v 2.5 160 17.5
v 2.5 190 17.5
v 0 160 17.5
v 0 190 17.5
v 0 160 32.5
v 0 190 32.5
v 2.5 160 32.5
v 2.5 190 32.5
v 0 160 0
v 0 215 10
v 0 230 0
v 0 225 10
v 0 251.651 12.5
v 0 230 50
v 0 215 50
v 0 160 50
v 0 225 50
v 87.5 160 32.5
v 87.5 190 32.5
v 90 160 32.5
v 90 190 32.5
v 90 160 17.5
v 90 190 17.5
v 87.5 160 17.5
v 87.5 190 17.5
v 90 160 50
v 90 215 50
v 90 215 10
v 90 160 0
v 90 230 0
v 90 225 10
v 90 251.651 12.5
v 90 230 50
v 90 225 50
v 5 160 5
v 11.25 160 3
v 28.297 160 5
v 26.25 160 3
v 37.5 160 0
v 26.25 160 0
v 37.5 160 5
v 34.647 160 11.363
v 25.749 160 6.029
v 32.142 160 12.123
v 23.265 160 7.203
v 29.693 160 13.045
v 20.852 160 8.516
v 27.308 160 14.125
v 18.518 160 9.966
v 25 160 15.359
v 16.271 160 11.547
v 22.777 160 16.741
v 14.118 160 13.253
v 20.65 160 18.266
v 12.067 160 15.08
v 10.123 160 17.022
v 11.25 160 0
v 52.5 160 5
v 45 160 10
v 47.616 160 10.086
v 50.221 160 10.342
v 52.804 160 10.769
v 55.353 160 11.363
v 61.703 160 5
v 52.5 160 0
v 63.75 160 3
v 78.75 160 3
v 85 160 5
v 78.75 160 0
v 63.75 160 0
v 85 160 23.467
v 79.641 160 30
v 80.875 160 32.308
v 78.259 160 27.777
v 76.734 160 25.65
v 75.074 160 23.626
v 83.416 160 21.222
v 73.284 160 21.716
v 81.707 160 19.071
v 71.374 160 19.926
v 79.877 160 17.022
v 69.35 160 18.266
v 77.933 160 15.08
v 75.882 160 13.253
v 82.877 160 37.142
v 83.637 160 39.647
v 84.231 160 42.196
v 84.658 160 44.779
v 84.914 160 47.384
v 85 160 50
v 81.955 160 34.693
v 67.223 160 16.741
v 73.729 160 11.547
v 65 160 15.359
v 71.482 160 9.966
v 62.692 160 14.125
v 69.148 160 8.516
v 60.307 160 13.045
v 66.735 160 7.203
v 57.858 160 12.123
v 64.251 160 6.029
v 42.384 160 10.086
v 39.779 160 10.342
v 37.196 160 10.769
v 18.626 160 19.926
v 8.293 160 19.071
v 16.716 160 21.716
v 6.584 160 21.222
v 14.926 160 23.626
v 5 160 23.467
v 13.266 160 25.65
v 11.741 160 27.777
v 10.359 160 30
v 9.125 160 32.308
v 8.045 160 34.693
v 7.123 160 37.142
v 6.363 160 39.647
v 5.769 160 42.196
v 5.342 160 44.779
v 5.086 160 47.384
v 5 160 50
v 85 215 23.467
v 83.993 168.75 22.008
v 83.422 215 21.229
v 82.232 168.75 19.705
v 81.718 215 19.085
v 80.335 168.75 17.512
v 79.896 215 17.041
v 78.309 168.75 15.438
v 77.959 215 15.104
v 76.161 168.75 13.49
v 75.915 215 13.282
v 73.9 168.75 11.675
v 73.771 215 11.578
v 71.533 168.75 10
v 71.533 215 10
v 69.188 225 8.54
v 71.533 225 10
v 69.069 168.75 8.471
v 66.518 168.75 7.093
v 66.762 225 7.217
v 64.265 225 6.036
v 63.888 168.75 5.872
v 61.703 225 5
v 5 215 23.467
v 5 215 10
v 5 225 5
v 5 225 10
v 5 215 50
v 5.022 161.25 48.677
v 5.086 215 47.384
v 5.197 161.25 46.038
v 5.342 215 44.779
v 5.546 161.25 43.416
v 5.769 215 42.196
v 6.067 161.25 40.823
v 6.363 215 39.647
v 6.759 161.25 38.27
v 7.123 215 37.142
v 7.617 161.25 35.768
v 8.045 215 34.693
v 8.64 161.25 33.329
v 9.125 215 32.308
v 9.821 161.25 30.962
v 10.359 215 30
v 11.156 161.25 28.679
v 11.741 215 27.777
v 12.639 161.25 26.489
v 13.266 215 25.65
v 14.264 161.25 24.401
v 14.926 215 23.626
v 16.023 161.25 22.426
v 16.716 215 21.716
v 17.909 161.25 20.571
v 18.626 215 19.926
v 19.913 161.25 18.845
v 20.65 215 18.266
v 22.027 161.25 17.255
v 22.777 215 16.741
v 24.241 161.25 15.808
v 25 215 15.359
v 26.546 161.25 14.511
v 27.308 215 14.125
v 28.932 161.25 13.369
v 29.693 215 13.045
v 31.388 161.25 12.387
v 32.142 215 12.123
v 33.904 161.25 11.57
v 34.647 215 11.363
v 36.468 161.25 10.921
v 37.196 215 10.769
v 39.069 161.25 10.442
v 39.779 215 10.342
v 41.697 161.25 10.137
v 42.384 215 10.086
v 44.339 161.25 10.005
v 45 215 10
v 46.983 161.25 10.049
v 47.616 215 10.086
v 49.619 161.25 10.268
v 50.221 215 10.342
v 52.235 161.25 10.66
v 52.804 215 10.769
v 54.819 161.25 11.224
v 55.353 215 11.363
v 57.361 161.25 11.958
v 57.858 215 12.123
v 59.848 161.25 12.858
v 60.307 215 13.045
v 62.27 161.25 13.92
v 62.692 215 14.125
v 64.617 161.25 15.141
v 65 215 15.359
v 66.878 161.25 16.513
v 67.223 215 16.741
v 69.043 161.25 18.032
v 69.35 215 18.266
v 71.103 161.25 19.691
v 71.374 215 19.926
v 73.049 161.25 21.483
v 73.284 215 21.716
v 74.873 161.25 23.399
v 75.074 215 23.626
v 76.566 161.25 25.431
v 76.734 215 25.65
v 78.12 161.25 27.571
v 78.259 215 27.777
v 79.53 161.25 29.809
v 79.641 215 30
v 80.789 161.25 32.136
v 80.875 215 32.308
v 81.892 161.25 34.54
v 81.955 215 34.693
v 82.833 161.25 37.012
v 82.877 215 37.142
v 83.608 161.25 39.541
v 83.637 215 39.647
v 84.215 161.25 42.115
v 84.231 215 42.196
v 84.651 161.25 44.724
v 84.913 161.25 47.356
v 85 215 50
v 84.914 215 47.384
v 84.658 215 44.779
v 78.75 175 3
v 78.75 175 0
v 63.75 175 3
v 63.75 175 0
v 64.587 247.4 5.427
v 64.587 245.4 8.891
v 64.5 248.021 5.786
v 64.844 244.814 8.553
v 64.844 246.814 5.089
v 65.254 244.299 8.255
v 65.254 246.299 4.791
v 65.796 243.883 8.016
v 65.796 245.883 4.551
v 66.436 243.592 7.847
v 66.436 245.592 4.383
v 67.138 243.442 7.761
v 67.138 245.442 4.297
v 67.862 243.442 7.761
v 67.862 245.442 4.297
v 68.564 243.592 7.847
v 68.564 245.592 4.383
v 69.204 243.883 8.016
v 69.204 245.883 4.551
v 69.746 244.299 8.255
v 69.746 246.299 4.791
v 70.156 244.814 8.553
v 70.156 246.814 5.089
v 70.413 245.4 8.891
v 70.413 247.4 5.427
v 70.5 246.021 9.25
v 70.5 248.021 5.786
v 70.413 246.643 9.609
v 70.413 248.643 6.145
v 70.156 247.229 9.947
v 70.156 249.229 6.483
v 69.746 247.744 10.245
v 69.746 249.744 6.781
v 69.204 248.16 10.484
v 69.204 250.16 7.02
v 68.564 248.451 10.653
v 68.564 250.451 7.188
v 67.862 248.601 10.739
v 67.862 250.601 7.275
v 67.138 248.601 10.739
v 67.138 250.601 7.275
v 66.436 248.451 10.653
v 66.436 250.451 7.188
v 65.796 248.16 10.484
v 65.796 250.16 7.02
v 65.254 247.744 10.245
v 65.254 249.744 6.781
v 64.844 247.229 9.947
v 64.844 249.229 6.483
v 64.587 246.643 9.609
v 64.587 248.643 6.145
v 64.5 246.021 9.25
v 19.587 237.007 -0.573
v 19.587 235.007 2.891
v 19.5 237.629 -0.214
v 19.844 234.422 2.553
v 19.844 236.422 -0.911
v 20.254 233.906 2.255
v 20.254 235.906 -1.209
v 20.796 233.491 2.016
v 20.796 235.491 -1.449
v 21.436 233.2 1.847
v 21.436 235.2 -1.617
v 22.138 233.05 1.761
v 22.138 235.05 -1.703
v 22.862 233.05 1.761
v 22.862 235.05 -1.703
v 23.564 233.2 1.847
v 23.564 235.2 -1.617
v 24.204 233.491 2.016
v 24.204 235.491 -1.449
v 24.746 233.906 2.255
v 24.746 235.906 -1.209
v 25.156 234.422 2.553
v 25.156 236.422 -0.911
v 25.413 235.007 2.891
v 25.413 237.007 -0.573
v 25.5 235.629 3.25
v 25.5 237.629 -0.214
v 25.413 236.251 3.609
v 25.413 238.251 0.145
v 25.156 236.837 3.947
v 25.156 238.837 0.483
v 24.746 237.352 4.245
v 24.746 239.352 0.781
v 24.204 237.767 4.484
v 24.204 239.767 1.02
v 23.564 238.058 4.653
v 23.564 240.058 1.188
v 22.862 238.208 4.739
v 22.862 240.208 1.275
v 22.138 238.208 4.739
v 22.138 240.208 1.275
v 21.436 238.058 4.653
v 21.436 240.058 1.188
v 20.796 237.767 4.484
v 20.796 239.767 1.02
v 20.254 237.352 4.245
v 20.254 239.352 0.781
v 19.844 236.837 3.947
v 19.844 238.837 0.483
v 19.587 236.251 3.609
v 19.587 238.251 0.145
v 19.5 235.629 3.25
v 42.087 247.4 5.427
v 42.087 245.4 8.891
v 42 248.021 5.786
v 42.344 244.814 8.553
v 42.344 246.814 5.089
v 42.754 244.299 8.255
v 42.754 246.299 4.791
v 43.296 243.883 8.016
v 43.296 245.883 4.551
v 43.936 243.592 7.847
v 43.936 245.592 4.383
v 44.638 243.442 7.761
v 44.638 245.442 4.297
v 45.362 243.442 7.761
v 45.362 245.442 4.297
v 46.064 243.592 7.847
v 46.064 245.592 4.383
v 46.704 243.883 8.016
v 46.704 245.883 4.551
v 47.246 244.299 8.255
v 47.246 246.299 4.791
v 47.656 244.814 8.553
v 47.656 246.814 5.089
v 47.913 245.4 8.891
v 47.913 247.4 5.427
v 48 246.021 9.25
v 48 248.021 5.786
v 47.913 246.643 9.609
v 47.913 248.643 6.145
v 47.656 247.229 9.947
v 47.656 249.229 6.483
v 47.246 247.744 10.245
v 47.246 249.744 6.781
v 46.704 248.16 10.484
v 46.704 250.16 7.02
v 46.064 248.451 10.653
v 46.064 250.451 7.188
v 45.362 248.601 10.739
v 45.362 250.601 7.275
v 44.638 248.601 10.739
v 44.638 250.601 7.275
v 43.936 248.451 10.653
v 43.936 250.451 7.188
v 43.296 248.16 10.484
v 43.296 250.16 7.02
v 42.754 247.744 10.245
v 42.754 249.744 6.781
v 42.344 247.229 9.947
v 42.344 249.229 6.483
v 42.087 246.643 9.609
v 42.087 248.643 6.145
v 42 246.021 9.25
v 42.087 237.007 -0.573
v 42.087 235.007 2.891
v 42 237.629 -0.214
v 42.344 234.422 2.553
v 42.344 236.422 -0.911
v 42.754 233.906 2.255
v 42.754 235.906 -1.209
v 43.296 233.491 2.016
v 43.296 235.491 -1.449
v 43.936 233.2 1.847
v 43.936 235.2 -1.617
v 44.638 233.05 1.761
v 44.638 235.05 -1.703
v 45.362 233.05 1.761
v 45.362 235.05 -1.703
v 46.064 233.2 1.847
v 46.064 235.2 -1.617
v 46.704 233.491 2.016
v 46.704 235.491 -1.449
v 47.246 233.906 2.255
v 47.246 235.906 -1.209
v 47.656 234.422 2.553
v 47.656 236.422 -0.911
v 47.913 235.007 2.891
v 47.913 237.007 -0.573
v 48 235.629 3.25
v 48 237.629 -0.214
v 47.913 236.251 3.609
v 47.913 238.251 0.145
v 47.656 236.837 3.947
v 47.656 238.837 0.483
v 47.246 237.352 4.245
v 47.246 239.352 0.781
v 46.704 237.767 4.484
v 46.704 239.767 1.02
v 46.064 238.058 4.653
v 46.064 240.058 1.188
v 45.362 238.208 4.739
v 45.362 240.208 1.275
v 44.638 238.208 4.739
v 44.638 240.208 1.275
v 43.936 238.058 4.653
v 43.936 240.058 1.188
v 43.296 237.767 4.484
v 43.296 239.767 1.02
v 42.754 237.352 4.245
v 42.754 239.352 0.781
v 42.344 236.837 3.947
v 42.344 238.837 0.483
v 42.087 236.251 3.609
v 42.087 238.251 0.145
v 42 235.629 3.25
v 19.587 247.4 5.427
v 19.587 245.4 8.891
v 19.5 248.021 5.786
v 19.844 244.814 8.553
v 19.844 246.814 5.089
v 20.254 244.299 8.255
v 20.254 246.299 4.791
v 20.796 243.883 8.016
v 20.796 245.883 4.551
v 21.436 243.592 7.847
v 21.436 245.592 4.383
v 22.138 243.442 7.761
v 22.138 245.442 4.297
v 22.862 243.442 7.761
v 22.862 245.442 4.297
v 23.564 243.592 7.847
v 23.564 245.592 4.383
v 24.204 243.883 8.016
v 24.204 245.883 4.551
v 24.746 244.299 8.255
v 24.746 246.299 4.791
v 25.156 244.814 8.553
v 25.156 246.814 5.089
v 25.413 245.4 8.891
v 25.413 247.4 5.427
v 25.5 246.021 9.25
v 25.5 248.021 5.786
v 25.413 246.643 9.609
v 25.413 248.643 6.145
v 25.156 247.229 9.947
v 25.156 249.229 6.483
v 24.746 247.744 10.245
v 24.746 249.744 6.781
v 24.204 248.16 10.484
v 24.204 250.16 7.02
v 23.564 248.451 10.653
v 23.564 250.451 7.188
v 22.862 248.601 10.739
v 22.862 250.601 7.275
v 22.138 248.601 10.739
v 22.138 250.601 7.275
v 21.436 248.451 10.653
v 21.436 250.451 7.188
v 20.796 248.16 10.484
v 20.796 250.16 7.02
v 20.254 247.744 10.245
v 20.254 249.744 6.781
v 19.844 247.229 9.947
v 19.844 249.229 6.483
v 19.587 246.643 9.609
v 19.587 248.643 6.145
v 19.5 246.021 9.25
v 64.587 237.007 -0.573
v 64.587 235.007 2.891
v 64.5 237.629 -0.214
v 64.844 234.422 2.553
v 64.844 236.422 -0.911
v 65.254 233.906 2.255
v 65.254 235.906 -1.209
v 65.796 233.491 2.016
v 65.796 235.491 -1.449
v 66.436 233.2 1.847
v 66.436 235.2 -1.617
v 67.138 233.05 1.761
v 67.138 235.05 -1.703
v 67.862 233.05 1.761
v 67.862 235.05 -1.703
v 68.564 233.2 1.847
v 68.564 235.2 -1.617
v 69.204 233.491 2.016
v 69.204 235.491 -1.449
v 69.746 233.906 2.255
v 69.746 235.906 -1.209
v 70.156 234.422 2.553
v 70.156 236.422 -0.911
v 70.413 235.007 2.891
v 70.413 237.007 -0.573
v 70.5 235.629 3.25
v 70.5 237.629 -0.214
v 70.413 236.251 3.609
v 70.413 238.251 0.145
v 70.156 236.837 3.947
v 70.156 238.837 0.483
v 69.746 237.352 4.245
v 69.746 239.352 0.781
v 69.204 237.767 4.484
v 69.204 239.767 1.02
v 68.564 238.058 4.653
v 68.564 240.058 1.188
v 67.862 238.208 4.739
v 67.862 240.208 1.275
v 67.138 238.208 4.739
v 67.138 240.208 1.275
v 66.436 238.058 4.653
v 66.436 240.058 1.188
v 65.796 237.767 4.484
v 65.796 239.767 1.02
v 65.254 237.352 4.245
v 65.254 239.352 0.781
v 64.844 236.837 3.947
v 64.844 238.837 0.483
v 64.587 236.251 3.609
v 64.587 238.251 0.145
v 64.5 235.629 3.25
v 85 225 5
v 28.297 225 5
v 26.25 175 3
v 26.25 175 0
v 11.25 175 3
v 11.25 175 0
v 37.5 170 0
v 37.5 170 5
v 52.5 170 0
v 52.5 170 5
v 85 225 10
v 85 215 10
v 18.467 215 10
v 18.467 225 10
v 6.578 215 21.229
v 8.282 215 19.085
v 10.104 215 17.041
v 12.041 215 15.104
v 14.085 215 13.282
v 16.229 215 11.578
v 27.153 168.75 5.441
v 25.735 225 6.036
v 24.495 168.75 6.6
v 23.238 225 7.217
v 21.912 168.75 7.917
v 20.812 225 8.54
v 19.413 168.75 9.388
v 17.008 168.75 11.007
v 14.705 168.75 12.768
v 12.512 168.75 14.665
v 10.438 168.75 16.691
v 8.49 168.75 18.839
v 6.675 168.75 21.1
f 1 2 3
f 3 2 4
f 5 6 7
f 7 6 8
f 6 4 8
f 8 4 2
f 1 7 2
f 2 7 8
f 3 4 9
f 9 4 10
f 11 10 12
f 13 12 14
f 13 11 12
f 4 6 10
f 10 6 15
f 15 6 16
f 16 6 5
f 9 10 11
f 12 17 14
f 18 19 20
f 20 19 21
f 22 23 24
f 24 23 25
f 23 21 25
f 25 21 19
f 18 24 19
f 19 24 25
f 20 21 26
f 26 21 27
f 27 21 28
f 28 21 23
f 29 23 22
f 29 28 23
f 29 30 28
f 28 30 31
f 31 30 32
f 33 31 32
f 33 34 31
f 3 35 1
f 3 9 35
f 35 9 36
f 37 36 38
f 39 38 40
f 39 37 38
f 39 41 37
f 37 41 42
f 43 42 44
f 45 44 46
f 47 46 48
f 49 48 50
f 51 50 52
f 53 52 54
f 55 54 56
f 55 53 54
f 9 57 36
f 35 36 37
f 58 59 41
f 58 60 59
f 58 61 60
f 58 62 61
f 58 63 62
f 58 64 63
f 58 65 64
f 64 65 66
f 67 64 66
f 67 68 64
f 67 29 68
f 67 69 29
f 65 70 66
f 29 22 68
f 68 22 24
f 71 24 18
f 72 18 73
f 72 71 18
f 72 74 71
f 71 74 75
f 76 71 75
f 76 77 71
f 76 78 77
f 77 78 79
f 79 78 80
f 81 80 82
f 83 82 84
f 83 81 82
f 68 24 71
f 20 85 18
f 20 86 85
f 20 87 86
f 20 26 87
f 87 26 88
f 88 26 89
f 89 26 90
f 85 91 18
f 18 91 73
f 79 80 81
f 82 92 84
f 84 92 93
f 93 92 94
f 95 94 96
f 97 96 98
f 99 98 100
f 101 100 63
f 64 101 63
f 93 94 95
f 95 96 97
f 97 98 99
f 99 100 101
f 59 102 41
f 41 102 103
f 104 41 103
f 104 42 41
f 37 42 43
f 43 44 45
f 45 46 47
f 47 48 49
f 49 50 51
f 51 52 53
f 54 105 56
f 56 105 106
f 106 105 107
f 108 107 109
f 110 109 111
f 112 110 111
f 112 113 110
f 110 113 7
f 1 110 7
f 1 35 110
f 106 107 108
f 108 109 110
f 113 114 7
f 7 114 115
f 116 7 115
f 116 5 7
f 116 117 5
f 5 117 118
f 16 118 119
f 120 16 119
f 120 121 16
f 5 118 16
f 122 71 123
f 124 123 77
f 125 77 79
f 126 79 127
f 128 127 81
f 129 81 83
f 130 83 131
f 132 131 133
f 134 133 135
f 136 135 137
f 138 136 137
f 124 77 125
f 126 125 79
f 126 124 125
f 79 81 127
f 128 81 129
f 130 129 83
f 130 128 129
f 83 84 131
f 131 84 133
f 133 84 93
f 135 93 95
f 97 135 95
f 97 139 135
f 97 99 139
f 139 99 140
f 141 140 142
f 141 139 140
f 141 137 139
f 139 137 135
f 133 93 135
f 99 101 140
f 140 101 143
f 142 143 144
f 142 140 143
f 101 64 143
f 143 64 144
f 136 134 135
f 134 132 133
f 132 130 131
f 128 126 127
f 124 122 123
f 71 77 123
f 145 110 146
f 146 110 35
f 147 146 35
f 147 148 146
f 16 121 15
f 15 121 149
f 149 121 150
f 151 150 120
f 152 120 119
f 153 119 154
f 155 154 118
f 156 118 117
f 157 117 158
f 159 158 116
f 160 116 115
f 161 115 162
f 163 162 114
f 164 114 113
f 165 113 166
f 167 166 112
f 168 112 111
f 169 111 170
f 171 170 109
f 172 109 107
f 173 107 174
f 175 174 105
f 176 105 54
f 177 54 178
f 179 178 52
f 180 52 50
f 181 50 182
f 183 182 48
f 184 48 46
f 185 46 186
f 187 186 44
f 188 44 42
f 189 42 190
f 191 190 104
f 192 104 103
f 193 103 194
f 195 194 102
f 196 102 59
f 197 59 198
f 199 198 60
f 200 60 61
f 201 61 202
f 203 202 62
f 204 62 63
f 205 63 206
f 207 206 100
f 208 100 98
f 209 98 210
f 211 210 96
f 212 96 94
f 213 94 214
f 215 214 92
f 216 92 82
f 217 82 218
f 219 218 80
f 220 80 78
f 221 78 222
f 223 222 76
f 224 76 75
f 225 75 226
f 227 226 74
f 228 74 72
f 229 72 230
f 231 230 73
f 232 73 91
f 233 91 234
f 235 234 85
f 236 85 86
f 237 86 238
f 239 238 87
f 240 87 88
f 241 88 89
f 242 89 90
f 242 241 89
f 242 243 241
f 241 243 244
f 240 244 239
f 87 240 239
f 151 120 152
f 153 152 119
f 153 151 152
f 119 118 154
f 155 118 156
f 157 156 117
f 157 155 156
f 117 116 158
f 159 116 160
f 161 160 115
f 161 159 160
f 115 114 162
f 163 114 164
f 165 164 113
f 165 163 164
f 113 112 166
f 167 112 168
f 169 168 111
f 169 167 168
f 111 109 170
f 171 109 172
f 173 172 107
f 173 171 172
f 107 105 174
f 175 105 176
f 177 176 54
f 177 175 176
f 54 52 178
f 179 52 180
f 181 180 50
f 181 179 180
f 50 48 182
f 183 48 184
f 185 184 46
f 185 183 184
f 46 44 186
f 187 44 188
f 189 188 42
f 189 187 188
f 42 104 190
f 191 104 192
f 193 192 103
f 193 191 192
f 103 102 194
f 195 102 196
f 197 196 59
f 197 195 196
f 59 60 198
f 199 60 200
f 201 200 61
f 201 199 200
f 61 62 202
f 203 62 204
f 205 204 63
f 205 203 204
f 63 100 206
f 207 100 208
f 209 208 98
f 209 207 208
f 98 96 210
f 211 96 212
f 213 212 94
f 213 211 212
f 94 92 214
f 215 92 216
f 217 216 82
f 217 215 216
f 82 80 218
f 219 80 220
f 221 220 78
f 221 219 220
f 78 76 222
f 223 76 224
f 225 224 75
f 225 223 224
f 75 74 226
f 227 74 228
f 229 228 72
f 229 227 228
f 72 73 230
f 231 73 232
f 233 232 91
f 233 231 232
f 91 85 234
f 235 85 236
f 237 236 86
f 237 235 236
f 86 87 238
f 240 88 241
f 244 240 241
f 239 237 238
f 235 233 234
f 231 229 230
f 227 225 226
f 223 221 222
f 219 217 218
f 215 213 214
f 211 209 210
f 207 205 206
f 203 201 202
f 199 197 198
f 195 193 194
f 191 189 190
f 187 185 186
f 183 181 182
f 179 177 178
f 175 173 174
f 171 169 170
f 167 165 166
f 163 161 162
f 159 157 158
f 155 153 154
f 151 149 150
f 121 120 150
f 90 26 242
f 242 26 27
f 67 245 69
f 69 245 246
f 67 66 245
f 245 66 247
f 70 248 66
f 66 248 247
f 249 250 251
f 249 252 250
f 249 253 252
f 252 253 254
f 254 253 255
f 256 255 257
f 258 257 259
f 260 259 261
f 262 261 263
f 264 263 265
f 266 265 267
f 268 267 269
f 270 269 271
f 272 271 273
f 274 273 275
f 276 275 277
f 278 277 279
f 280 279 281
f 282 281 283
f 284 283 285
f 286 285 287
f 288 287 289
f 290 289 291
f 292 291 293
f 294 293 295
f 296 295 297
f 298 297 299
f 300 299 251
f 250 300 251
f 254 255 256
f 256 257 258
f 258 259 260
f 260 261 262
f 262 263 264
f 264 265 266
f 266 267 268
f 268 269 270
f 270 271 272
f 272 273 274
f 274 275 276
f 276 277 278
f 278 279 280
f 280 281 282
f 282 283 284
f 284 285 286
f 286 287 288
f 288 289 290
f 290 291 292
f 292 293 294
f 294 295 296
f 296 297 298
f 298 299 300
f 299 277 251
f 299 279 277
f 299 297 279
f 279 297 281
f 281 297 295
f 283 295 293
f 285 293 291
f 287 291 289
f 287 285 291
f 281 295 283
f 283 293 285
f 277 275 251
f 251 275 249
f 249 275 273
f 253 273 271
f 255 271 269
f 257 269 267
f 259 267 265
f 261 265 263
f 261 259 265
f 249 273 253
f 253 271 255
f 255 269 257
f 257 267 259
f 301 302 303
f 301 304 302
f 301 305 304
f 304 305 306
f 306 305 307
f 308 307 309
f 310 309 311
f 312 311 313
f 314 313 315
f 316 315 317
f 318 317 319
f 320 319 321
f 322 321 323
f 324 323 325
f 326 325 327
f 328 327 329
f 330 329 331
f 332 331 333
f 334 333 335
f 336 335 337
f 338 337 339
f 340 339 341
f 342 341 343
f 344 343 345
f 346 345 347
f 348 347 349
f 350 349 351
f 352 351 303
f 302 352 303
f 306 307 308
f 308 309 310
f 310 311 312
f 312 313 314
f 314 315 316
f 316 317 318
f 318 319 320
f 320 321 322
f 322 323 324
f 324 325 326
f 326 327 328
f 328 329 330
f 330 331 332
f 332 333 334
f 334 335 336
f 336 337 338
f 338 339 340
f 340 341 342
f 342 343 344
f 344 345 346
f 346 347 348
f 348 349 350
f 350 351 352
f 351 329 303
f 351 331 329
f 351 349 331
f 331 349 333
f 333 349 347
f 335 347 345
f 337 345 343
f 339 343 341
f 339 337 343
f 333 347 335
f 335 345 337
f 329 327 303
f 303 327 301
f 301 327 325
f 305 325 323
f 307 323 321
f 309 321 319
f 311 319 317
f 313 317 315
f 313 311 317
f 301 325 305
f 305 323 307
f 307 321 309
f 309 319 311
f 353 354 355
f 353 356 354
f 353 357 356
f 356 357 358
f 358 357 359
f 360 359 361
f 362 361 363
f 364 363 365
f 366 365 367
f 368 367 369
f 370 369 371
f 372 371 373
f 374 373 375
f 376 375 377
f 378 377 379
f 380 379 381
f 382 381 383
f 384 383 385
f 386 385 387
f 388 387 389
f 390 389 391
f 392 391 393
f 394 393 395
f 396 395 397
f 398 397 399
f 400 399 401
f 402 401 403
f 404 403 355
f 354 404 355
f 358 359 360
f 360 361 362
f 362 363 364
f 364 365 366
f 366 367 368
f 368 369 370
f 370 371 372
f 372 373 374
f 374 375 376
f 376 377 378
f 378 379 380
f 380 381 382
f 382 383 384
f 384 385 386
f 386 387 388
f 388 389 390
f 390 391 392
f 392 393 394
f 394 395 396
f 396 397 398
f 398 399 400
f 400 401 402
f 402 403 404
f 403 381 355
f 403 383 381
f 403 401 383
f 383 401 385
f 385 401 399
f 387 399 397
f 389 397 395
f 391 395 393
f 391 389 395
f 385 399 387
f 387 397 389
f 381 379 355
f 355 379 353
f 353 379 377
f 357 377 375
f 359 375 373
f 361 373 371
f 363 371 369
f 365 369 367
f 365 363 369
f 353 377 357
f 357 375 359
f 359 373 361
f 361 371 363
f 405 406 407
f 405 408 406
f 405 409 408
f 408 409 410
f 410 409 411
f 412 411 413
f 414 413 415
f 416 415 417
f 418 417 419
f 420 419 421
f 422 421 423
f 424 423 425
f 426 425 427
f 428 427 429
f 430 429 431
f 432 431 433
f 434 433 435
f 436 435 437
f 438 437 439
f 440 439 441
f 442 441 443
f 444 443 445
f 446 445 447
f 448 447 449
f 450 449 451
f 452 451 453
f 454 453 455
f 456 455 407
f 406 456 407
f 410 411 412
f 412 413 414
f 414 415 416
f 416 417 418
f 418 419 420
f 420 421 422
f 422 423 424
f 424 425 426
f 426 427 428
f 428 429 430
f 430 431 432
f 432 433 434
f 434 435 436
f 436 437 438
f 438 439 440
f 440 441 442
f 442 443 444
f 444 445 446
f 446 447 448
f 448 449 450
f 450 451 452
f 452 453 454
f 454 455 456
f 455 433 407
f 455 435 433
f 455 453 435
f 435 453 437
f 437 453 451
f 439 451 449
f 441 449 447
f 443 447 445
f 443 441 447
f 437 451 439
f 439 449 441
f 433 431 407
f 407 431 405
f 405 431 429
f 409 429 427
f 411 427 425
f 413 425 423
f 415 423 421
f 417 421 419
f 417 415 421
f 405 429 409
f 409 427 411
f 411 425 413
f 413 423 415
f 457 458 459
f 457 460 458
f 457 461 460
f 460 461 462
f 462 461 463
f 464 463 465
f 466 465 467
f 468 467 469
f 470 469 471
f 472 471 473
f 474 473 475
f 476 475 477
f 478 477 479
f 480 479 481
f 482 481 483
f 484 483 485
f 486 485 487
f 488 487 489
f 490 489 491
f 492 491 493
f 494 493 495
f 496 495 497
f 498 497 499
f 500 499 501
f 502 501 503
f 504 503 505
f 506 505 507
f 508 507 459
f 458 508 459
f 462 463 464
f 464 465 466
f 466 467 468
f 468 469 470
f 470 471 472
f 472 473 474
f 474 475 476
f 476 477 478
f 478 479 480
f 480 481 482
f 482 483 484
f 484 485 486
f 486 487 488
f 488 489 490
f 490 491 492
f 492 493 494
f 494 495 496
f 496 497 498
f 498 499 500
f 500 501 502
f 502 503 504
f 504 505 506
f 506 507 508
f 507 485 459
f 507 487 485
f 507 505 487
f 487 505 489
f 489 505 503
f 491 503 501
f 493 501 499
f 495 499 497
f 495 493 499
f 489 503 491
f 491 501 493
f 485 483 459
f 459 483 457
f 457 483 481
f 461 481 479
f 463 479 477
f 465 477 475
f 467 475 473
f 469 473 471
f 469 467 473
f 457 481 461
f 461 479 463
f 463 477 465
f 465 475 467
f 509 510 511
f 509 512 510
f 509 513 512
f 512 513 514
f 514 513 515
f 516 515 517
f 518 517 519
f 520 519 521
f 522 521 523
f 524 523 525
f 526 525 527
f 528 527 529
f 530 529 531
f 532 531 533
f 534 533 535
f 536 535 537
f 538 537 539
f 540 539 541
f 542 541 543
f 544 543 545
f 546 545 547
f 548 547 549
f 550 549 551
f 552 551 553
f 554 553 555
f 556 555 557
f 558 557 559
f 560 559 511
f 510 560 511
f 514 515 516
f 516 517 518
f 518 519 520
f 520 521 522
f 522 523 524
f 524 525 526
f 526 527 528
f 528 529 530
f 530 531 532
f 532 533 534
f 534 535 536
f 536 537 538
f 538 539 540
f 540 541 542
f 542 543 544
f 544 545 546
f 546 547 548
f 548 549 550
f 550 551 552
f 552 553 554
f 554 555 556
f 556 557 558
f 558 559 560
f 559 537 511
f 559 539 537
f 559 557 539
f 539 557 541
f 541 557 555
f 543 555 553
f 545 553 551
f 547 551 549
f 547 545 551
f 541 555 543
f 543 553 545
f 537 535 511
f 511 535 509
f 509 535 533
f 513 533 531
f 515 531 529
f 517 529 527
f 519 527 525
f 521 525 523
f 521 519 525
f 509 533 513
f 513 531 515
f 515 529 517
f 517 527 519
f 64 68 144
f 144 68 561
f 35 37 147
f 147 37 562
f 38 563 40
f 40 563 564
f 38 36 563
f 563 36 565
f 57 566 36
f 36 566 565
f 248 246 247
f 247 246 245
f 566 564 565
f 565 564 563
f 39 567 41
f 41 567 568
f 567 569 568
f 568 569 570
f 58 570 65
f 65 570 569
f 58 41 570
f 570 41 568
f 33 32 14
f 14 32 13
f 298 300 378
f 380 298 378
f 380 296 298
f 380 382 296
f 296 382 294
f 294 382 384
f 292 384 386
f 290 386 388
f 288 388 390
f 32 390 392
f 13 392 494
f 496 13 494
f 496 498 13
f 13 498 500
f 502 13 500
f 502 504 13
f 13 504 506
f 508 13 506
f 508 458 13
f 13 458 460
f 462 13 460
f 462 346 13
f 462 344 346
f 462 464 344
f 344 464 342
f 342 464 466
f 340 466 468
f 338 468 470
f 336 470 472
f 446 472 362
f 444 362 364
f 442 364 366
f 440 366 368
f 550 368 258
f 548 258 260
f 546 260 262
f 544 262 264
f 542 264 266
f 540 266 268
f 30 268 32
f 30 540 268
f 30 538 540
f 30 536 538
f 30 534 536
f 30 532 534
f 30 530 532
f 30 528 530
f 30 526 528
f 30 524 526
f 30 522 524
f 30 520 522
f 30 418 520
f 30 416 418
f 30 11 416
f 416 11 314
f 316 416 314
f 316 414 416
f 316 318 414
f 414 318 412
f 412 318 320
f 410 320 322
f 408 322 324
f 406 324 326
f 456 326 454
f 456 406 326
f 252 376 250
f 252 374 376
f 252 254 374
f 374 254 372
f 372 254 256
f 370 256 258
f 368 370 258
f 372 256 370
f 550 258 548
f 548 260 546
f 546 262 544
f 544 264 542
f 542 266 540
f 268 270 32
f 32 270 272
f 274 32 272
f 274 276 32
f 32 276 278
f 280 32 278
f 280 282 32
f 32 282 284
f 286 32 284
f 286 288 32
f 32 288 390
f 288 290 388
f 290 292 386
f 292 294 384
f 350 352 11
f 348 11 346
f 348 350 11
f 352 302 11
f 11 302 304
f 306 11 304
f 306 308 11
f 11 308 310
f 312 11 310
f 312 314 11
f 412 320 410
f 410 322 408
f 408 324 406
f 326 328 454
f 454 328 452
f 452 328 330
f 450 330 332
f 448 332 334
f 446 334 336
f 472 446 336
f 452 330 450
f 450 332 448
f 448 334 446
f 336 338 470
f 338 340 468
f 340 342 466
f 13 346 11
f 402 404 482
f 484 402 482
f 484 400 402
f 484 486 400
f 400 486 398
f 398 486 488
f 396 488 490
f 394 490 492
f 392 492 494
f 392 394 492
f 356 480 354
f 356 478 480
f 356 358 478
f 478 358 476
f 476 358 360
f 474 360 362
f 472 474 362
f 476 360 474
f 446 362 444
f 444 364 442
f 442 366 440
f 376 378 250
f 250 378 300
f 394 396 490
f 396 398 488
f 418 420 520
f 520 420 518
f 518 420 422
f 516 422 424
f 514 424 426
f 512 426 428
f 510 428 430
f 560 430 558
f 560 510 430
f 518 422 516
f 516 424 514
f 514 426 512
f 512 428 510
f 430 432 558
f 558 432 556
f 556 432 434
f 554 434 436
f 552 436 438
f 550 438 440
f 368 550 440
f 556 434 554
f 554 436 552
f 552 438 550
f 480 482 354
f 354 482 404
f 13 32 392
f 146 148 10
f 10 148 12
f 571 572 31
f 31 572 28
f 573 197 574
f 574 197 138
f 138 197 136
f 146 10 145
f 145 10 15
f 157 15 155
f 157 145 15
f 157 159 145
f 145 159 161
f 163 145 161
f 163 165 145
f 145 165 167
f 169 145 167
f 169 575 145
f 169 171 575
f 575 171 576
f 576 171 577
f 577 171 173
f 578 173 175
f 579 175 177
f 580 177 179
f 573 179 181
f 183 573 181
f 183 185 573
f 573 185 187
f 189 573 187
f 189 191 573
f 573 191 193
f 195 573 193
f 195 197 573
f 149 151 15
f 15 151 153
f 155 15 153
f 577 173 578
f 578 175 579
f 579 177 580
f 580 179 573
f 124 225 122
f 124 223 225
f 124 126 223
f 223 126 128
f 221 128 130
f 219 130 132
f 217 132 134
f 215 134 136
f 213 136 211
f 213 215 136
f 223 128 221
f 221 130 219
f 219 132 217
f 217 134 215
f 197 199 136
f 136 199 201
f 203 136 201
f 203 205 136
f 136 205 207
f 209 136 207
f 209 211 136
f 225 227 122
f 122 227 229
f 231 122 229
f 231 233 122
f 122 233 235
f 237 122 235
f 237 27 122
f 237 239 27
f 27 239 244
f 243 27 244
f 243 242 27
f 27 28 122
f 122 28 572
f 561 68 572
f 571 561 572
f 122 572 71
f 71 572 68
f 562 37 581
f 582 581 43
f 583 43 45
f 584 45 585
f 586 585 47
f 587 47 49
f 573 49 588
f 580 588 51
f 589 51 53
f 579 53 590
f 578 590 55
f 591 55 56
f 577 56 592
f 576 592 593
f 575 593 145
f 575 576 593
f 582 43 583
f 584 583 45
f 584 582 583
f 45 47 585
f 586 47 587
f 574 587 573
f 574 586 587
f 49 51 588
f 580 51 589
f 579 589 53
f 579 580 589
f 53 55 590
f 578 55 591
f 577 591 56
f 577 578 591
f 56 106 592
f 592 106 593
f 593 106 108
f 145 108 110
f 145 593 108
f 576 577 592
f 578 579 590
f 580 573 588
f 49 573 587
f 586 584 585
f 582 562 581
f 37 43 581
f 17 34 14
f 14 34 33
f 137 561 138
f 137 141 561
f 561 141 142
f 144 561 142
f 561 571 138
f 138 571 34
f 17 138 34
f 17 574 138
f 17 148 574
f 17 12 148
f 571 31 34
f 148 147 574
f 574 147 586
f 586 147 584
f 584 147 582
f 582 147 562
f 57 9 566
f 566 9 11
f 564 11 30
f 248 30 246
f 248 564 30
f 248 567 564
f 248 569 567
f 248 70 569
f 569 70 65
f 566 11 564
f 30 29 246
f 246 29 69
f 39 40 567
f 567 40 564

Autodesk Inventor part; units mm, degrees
ref_plane "YZ Plane" through (0, 0, 0) normal (1, 0, 0) x (0, 1, 0)
ref_plane "XZ Plane" through (0, 0, 0) normal (0, 1, 0) x (-1, 0, 0)
ref_plane "XY Plane" through (0, 0, 0) normal (0, 0, 1) x (1, 0, 0)
sketch "スケッチ1" plane through (0, 0, 0) normal (0, 1, 0) x (-1, 0, 0)
  line L0 (0, 0) -> (-90, 0)
  line L1 (-90, 0) -> (-90, 50)
  line L2 (0, 50) -> (0, 0)
  line L3 (0, 0) -> (-5, 0)
  line L4 (-5, 0) -> (-5, 50)
  line L5 (-5, 0) -> (-90, 0)
  line L6 (-90, 0) -> (-85, 0)
  line L7 (-85, 0) -> (-85, 50)
  arc A0 (-85, 50) -> (-5, 50) centre (-45, 50) ccw
  line L8 (0, 0) -> (0, 10)
  line L9 (0, 10) -> (-90, 10)
  circle A1 centre (-45, 50) radius 45
  line L10 (-90, 5) -> (0, 5)
  line L11 (-90, 50) -> (-85, 50)
  line L12 (-5, 50) -> (0, 50)
  line L13 (0, 0) -> (-90, 0)
  line L14 (-90, 0) -> (-90, 5)
  line L15 (-90, 5) -> (0, 5)
  line L16 (0, 5) -> (0, 0)
  dimension "d0" = 90
  dimension "d1" = 50
  dimension "d2" = 5
  dimension "d3" = 85
  dimension "d4" = 5
  dimension "d5" = 80
  dimension "d6" = 10
  dimension "d7" = 90
extrude "押し出し1" add sketch "スケッチ1" along normal blind 230 contours L0 L4 L10 L2 | L0 L7 L10 L4 | L10 L4 L9 L2 | L0 L1 L10 L7 | L10 A1 L9 L4 | L9 L4 A1 L2 | L10 L1 L9 L7 | L7 L9 A1 L10 | L9 A1 L4 | A1 L9 | A1 L4 L12 | L9 L1 A1 L7 | L7 A1 L9 | A1 L9 A0 L4 | A1 L7 A0 L9 | L11 L7 A1
sketch "スケッチ2" plane through (0, 0, 0) normal (0, -1, 0) x (1, 0, 0)
  line L0 (0, 0) -> (0, 50) projected
  line L1 (90, 0) -> (0, 0) projected
  line L2 (90, 50) -> (90, 0) projected
  line L3 (85, 50) -> (90, 50) projected
  arc A0 (5, 50) -> (85, 50) centre (45, 50) ccw projected
  line L4 (0, 50) -> (5, 50) projected
  arc A1 (5, 23.467) -> (85, 23.467) centre (45, 50) ccw
  line L5 (0, 5) -> (90, 5)
  line L6 (5, 23.467) -> (5, 5)
  line L7 (85, 23.467) -> (85, 5)
  dimension "d29" = 48
extrude "押し出し2" cut sketch "スケッチ2" against normal blind 225 contours L6 A1 L5 | L5 A1 L7
sketch "スケッチ3" plane through (0, 230, 0) normal (0, 1, 0) x (1, 0, 0)
  arc A0 (85, -50) -> (5, -50) centre (45, -50) ccw projected
  line L0 (90, -50) -> (90, 0) projected
  line L1 (0, -50) -> (5, -50) projected
  arc A1 (85, -50) -> (5, -50) centre (45, -50) ccw
  line L2 (5, -50) -> (85, -50)
extrude "押し出し3" add sketch "スケッチ3" against normal blind 5
sketch "スケッチ4" plane through (90, 0, 50) normal (1, 0, 0) x (0, 0, -1)
  line L0 (0, 0) -> (50, 0) projected
  line L1 (0, 0) -> (0, 230) projected
  line L2 (25, 0) -> (25, 65)
  line L3 (25, 65) -> (25, 75)
  line L4 (25, 75) -> (25, 215)
  line L5 (25, 215) -> (25, 225)
  line L6 (0, 65) -> (40, 65)
  line L7 (40, 65) -> (40, 75)
  line L8 (40, 75) -> (0, 75)
  line L9 (0, 75) -> (0, 65)
  line L10 (0, 215) -> (40, 215)
  line L11 (40, 215) -> (40, 225)
  line L12 (40, 225) -> (0, 225)
  line L13 (0, 225) -> (0, 215)
  dimension "d16" = 65
  dimension "d17" = 10
  dimension "d18" = 140
  dimension "d19" = 10
  dimension "d20" = 40
extrude "押し出し4" cut sketch "スケッチ4" against normal blind 90 contours L1 L8 L3 L6 | L3 L8 L7 L6 | L1 L12 L5 L10 | L5 L12 L11 L10
sketch "スケッチ6" plane through (90, 0, 50) normal (1, 0, 0) x (0, 0, -1)
  line L0 (0, 230) -> (50, 230) projected
  line L1 (50, 230) -> (37.5, 251.6506)
  line L2 (50, 230) -> (110, 230) construction
  line L3 (0, 230) -> (37.5, 251.6506)
  line L4 (0, 230) -> (43.3013, 230) construction
  dimension "d32" = 120
  dimension "d33" = 30
extrude "押し出し6" add sketch "スケッチ6" against normal blind 90
sketch "スケッチ9" plane through (0, 0, 0) normal (-1, 0, 0) x (0, 0, 1)
  line L0 (10, 225) -> (50, 225) projected
  line L1 (50, 225) -> (50, 230) projected
  line L2 (50, 230) -> (12.5, 251.6506) projected
  line L3 (12.5, 251.6506) -> (0, 230) projected
  line L4 (0, 0) -> (0, 230) projected
  line L5 (0, 0) -> (50, 0) projected
  line L6 (50, 0) -> (50, 65) projected
  line L7 (50, 65) -> (10, 65) projected
  line L8 (10, 65) -> (10, 75) projected
  line L9 (10, 75) -> (50, 75) projected
  line L10 (50, 75) -> (50, 215) projected
  line L11 (50, 215) -> (10, 215) projected
  line L12 (10, 215) -> (10, 225) projected
  line L13 (12.5, 251.6506) -> (0, 230)
  line L14 (0, 230) -> (-132.7906, 0)
  line L15 (0, 145) -> (-49.0748, 145)
  line L16 (0, 115) -> (-66.3953, 115)
  dimension "d45" = 30
sketch "スケッチ10" plane through (0, 0, 0) normal (-1, 0, 0) x (0, 0, 1)
  line L0 (10, 225) -> (50, 225) projected
  line L1 (50, 225) -> (50, 230) projected
  line L2 (50, 230) -> (12.5, 251.6506) projected
  line L3 (12.5, 251.6506) -> (0, 230) projected
  line L4 (0, 0) -> (0, 230) projected
  line L5 (0, 0) -> (50, 0) projected
  line L6 (50, 0) -> (50, 65) projected
  line L7 (50, 65) -> (10, 65) projected
  line L8 (10, 65) -> (10, 75) projected
  line L9 (10, 75) -> (50, 75) projected
  line L10 (50, 75) -> (50, 215) projected
  line L11 (50, 215) -> (10, 215) projected
  line L12 (10, 215) -> (10, 225) projected
  line L13 (12.5, 251.6506) -> (-87.5, 78.4456)
  line L14 (-87.5, 78.4456) -> (50, 0)
sketch "スケッチ12" plane through (90, 0, 50) normal (1, 0, 0) x (0, 0, -1)
  line L0 (50, 0) -> (50, 230) projected
  line L1 (40, 225) -> (40, 215) projected
  line L2 (0, 215) -> (0, 75)
  line L3 (0, 145) -> (50, 145)
  line L4 (32.5, 175) -> (17.5, 175)
  line L5 (17.5, 175) -> (17.5, 115)
  line L6 (17.5, 115) -> (32.5, 115)
  line L7 (32.5, 115) -> (32.5, 175)
  line L8 (32.5, 175) -> (17.5, 115) construction
  line L9 (17.5, 175) -> (32.5, 115) construction
  line L10 (17.5, 145) -> (32.5, 145)
  line L11 (32.5, 145) -> (32.5, 115)
  line L12 (32.5, 115) -> (17.5, 115)
  line L13 (17.5, 115) -> (17.5, 145)
  point P0 (25, 145)
  dimension "d59" = 15
  dimension "d60" = 60
extrude "押し出し8" cut sketch "スケッチ12" against normal blind 2.5 contours L3 L7 L6 L5
sketch "スケッチ13" plane through (0, 0, 0) normal (-1, 0, 0) x (0, 0, 1)
  line L0 (0, 0) -> (0, 230) projected
  line L1 (50, 75) -> (50, 215) projected
  line L2 (50, 145) -> (0, 145)
  line L3 (17.5, 175) -> (32.5, 175)
  line L4 (32.5, 175) -> (32.5, 115)
  line L5 (32.5, 115) -> (17.5, 115)
  line L6 (17.5, 115) -> (17.5, 175)
  line L7 (17.5, 175) -> (32.5, 115) construction
  line L8 (32.5, 175) -> (17.5, 115) construction
  line L9 (17.5, 145) -> (32.5, 145)
  line L10 (32.5, 145) -> (32.5, 115)
  line L11 (32.5, 115) -> (17.5, 115)
  line L12 (17.5, 115) -> (17.5, 145)
  point P0 (25, 145)
  dimension "d63" = 15
  dimension "d64" = 60
extrude "押し出し9" cut sketch "スケッチ13" against normal blind 2.5 contours L4 L5 L6 L2
sketch "スケッチ14" plane through (90, 0, 0) normal (0, 0, -1) x (-1, 0, 0)
  line L0 (90, 0) -> (90, 230) projected
  line L1 (0, 0) -> (0, 230) projected
  line L2 (0, 145) -> (90, 145)
  line L3 (37.5, 170) -> (52.5, 170)
  line L4 (52.5, 170) -> (52.5, 120)
  line L5 (52.5, 120) -> (37.5, 120)
  line L6 (37.5, 120) -> (37.5, 170)
  line L7 (37.5, 170) -> (52.5, 120) construction
  line L8 (52.5, 170) -> (37.5, 120) construction
  line L9 (37.5, 145) -> (52.5, 145)
  line L10 (52.5, 145) -> (52.5, 170)
  line L11 (52.5, 170) -> (37.5, 170)
  line L12 (37.5, 170) -> (37.5, 145)
  point P0 (45, 145)
  dimension "d67" = 15
  dimension "d70" = 25
extrude "押し出し10" cut sketch "スケッチ14" against normal blind 5 contours L6 L3 L4 L2
sketch "スケッチ16" plane through (90, 0, 0) normal (0, 0, -1) x (-1, 0, 0)
  line L0 (52.5, 170) -> (52.5, 145) projected
  line L1 (52.5, 145) -> (37.5, 145) projected
  line L2 (37.5, 145) -> (37.5, 170) projected
  line L3 (90, 0) -> (90, 230) projected
  line L4 (0, 0) -> (0, 230) projected
  line L5 (0, 145) -> (90, 145)
  line L6 (0, 160) -> (37.5, 157.5)
  line L7 (52.5, 157.5) -> (90, 157.5)
  line L8 (18.75, 158.75) -> (18.75, 145)
  line L9 (71.25, 145) -> (71.25, 157.5)
  line L10 (11.25, 175) -> (26.25, 175)
  line L11 (26.25, 175) -> (26.25, 115)
  line L12 (26.25, 115) -> (11.25, 115)
  line L13 (11.25, 115) -> (11.25, 175)
  line L14 (11.25, 175) -> (26.25, 115) construction
  line L15 (26.25, 175) -> (11.25, 115) construction
  line L16 (11.25, 115) -> (26.25, 115)
  line L17 (26.25, 115) -> (26.25, 175)
  line L18 (26.25, 175) -> (11.25, 175)
  line L19 (11.25, 175) -> (11.25, 115)
  line L20 (45, 145) -> (45, 125)
  line L21 (78.75, 175) -> (63.75, 175)
  line L22 (63.75, 115) -> (78.75, 115)
  line L23 (78.75, 175) -> (78.75, 115)
  line L24 (63.75, 115) -> (63.75, 175)
  line L25 (63.75, 175) -> (78.75, 175)
  line L26 (78.75, 175) -> (78.75, 115)
  line L27 (78.75, 115) -> (63.75, 115)
  line L28 (63.75, 115) -> (63.75, 175)
  line L29 (11.25, 115) -> (26.25, 115)
  line L30 (26.25, 115) -> (26.25, 175)
  line L31 (26.25, 175) -> (11.25, 175)
  line L32 (11.25, 175) -> (11.25, 115)
  dimension "d71" = 15
  dimension "d72" = 60
  dimension "d73" = 20
extrude "押し出し11" cut sketch "スケッチ16" against normal blind 3 contours L24 L21 L23 L7 | L7 L9 L5 L24 | L5 L23 L22 L24 | L7 L23 L5 L9 | L11 L12 L13 L5 | L5 L8 L6 L11 | L6 L13 L10 L11 | L5 L13 L6 L8
sketch "スケッチ17" plane through (37.5, 145, 0) normal (0, 1, 0) x (1, 0, 0)
  line L0 (-57.7643, 16.522) -> (69.053, 16.522)
  line L1 (69.053, 16.522) -> (69.053, -65.9751)
  line L2 (69.053, -65.9751) -> (-57.7643, -65.9751)
  line L3 (-57.7643, -65.9751) -> (-57.7643, 16.522)
  point P0 (-37.5, 0)
extrude "押し出し12" cut sketch "スケッチ17" against normal blind 180
sketch "スケッチ18" plane through (0, 215, 10) normal (-1, 0, 0) x (0, 0, 1)
  line L0 (-10, -70) -> (40, -70) projected
  line L1 (7.5, -40) -> (22.5, -40)
  line L2 (22.5, -40) -> (22.5, -100)
  line L3 (22.5, -100) -> (7.5, -100)
  line L4 (7.5, -100) -> (7.5, -40)
  line L5 (7.5, -40) -> (22.5, -100) construction
  line L6 (22.5, -40) -> (7.5, -100) construction
  point P0 (-10, -215)
  point P1 (15, -70)
  dimension "d78" = 15
  dimension "d79" = 60
extrude "押し出し13" add sketch "スケッチ18" against normal blind 2.5
sketch "スケッチ19" plane through (90, 215, 10) normal (1, 0, 0) x (0, 0, -1)
  line L0 (-40, -70) -> (10, -70) projected
  line L1 (-22.5, -40) -> (-7.5, -40)
  line L2 (-7.5, -40) -> (-7.5, -100)
  line L3 (-7.5, -100) -> (-22.5, -100)
  line L4 (-22.5, -100) -> (-22.5, -40)
  line L5 (-22.5, -40) -> (-7.5, -100) construction
  line L6 (-7.5, -40) -> (-22.5, -100) construction
  point P0 (10, -215)
  point P1 (-15, -70)
  dimension "d82" = 15
  dimension "d83" = 60
extrude "押し出し14" add sketch "スケッチ19" against normal blind 2.5
sketch "スケッチ20" plane through (90, 230, 0) normal (0, 0.5, -0.8660254) x (-1, 0, 0)
  line L0 (0, 0) -> (0, 25) projected
  line L1 (0, 0) -> (90, 0) projected
  line L2 (90, 25) -> (90, 0) projected
  line L3 (0, 25) -> (90, 25) projected
  line L4 (0, 12.5) -> (90, 12.5)
  line L5 (45, 12.5) -> (45, 25)
  line L6 (45, 12.5) -> (45, 0)
  line L7 (22.5, 18.5) -> (67.5, 18.5)
  line L8 (67.5, 18.5) -> (67.5, 6.5)
  line L9 (67.5, 6.5) -> (22.5, 6.5)
  line L10 (22.5, 6.5) -> (22.5, 18.5)
  line L11 (22.5, 18.5) -> (67.5, 6.5) construction
  line L12 (67.5, 18.5) -> (22.5, 6.5) construction
  circle A0 centre (45, 6.5) radius 3
  circle A1 centre (67.5, 18.5) radius 3
  circle A2 centre (67.5, 6.5) radius 3
  circle A3 centre (22.5, 6.5) radius 3
  circle A4 centre (22.5, 18.5) radius 3
  circle A5 centre (45, 18.5) radius 3
  point P0 (90, -199.1858)
  dimension "d86" = 45
  dimension "d87" = 6
  dimension "d89" = 6
  dimension "d90" = 6
  dimension "d91" = 6
  dimension "d92" = 6
  dimension "d93" = 6
  dimension "d94" = 6
extrude "押し出し15" add sketch "スケッチ20" along normal blind 4 contours A0 L9 L6 | L6 L9 A0 | A3 L9 L10 | L10 L9 A3 | A4 L7 L10 | L10 L7 A4 | L9 A0 L6 | L6 A0 L9 | A5 L7 L5 | L5 L7 A5 | A5 L7 L5 | L5 L7 A5 | A2 L8 L9 | L9 L8 A2 | A1 L7 L8 | L8 L7 A1
ref_plane "作業平面2" through (45, 160, 50) normal (0, -1, 0) x (1, 0, 0)
sketch "スケッチ21" plane through (45, 160, 50) normal (0, -1, 0) x (1, 0, 0)
  line L0 (-52.9668, 19.8142) -> (54.3752, 19.8142)
  line L1 (54.3752, 19.8142) -> (54.3752, -61.5309)
  line L2 (54.3752, -61.5309) -> (-52.9668, -61.5309)
  line L3 (-52.9668, -61.5309) -> (-52.9668, 19.8142)
  line L4 (-52.9668, 19.8142) -> (54.3752, -61.5309) construction
  line L5 (54.3752, 19.8142) -> (-52.9668, -61.5309) construction
  point P0 (-45, -50)
  point P1 (0.7042, -20.8583)
extrude "押し出し16" cut sketch "スケッチ21" along normal blind 50
sketch "スケッチ22" plane through (90, 215, 10) normal (1, 0, 0) x (0, 0, -1)
  line L0 (-40, -55) -> (10, -55) projected
  line L1 (-22.5, -25) -> (-7.5, -25)
  line L2 (-7.5, -25) -> (-7.5, -85)
  line L3 (-7.5, -85) -> (-22.5, -85)
  line L4 (-22.5, -85) -> (-22.5, -25)
  line L5 (-22.5, -25) -> (-7.5, -85) construction
  line L6 (-7.5, -25) -> (-22.5, -85) construction
  point P0 (10, -215)
  point P1 (-15, -55)
  dimension "d100" = 15
  dimension "d101" = 60
extrude "押し出し17" cut sketch "スケッチ22" against normal blind 2.5
sketch "スケッチ23" plane through (0, 215, 10) normal (-1, 0, 0) x (0, 0, 1)
  line L0 (-10, -55) -> (40, -55) projected
  line L1 (7.5, -25) -> (22.5, -25)
  line L2 (22.5, -25) -> (22.5, -85)
  line L3 (22.5, -85) -> (7.5, -85)
  line L4 (7.5, -85) -> (7.5, -25)
  line L5 (7.5, -25) -> (22.5, -85) construction
  line L6 (22.5, -25) -> (7.5, -85) construction
  point P0 (-10, -215)
  point P1 (15, -55)
  dimension "d104" = 15
  dimension "d105" = 60
extrude "押し出し18" cut sketch "スケッチ23" against normal blind 2.5
properties part number "知能ロボコン発射台２.11" material "ABS プラスチック"
